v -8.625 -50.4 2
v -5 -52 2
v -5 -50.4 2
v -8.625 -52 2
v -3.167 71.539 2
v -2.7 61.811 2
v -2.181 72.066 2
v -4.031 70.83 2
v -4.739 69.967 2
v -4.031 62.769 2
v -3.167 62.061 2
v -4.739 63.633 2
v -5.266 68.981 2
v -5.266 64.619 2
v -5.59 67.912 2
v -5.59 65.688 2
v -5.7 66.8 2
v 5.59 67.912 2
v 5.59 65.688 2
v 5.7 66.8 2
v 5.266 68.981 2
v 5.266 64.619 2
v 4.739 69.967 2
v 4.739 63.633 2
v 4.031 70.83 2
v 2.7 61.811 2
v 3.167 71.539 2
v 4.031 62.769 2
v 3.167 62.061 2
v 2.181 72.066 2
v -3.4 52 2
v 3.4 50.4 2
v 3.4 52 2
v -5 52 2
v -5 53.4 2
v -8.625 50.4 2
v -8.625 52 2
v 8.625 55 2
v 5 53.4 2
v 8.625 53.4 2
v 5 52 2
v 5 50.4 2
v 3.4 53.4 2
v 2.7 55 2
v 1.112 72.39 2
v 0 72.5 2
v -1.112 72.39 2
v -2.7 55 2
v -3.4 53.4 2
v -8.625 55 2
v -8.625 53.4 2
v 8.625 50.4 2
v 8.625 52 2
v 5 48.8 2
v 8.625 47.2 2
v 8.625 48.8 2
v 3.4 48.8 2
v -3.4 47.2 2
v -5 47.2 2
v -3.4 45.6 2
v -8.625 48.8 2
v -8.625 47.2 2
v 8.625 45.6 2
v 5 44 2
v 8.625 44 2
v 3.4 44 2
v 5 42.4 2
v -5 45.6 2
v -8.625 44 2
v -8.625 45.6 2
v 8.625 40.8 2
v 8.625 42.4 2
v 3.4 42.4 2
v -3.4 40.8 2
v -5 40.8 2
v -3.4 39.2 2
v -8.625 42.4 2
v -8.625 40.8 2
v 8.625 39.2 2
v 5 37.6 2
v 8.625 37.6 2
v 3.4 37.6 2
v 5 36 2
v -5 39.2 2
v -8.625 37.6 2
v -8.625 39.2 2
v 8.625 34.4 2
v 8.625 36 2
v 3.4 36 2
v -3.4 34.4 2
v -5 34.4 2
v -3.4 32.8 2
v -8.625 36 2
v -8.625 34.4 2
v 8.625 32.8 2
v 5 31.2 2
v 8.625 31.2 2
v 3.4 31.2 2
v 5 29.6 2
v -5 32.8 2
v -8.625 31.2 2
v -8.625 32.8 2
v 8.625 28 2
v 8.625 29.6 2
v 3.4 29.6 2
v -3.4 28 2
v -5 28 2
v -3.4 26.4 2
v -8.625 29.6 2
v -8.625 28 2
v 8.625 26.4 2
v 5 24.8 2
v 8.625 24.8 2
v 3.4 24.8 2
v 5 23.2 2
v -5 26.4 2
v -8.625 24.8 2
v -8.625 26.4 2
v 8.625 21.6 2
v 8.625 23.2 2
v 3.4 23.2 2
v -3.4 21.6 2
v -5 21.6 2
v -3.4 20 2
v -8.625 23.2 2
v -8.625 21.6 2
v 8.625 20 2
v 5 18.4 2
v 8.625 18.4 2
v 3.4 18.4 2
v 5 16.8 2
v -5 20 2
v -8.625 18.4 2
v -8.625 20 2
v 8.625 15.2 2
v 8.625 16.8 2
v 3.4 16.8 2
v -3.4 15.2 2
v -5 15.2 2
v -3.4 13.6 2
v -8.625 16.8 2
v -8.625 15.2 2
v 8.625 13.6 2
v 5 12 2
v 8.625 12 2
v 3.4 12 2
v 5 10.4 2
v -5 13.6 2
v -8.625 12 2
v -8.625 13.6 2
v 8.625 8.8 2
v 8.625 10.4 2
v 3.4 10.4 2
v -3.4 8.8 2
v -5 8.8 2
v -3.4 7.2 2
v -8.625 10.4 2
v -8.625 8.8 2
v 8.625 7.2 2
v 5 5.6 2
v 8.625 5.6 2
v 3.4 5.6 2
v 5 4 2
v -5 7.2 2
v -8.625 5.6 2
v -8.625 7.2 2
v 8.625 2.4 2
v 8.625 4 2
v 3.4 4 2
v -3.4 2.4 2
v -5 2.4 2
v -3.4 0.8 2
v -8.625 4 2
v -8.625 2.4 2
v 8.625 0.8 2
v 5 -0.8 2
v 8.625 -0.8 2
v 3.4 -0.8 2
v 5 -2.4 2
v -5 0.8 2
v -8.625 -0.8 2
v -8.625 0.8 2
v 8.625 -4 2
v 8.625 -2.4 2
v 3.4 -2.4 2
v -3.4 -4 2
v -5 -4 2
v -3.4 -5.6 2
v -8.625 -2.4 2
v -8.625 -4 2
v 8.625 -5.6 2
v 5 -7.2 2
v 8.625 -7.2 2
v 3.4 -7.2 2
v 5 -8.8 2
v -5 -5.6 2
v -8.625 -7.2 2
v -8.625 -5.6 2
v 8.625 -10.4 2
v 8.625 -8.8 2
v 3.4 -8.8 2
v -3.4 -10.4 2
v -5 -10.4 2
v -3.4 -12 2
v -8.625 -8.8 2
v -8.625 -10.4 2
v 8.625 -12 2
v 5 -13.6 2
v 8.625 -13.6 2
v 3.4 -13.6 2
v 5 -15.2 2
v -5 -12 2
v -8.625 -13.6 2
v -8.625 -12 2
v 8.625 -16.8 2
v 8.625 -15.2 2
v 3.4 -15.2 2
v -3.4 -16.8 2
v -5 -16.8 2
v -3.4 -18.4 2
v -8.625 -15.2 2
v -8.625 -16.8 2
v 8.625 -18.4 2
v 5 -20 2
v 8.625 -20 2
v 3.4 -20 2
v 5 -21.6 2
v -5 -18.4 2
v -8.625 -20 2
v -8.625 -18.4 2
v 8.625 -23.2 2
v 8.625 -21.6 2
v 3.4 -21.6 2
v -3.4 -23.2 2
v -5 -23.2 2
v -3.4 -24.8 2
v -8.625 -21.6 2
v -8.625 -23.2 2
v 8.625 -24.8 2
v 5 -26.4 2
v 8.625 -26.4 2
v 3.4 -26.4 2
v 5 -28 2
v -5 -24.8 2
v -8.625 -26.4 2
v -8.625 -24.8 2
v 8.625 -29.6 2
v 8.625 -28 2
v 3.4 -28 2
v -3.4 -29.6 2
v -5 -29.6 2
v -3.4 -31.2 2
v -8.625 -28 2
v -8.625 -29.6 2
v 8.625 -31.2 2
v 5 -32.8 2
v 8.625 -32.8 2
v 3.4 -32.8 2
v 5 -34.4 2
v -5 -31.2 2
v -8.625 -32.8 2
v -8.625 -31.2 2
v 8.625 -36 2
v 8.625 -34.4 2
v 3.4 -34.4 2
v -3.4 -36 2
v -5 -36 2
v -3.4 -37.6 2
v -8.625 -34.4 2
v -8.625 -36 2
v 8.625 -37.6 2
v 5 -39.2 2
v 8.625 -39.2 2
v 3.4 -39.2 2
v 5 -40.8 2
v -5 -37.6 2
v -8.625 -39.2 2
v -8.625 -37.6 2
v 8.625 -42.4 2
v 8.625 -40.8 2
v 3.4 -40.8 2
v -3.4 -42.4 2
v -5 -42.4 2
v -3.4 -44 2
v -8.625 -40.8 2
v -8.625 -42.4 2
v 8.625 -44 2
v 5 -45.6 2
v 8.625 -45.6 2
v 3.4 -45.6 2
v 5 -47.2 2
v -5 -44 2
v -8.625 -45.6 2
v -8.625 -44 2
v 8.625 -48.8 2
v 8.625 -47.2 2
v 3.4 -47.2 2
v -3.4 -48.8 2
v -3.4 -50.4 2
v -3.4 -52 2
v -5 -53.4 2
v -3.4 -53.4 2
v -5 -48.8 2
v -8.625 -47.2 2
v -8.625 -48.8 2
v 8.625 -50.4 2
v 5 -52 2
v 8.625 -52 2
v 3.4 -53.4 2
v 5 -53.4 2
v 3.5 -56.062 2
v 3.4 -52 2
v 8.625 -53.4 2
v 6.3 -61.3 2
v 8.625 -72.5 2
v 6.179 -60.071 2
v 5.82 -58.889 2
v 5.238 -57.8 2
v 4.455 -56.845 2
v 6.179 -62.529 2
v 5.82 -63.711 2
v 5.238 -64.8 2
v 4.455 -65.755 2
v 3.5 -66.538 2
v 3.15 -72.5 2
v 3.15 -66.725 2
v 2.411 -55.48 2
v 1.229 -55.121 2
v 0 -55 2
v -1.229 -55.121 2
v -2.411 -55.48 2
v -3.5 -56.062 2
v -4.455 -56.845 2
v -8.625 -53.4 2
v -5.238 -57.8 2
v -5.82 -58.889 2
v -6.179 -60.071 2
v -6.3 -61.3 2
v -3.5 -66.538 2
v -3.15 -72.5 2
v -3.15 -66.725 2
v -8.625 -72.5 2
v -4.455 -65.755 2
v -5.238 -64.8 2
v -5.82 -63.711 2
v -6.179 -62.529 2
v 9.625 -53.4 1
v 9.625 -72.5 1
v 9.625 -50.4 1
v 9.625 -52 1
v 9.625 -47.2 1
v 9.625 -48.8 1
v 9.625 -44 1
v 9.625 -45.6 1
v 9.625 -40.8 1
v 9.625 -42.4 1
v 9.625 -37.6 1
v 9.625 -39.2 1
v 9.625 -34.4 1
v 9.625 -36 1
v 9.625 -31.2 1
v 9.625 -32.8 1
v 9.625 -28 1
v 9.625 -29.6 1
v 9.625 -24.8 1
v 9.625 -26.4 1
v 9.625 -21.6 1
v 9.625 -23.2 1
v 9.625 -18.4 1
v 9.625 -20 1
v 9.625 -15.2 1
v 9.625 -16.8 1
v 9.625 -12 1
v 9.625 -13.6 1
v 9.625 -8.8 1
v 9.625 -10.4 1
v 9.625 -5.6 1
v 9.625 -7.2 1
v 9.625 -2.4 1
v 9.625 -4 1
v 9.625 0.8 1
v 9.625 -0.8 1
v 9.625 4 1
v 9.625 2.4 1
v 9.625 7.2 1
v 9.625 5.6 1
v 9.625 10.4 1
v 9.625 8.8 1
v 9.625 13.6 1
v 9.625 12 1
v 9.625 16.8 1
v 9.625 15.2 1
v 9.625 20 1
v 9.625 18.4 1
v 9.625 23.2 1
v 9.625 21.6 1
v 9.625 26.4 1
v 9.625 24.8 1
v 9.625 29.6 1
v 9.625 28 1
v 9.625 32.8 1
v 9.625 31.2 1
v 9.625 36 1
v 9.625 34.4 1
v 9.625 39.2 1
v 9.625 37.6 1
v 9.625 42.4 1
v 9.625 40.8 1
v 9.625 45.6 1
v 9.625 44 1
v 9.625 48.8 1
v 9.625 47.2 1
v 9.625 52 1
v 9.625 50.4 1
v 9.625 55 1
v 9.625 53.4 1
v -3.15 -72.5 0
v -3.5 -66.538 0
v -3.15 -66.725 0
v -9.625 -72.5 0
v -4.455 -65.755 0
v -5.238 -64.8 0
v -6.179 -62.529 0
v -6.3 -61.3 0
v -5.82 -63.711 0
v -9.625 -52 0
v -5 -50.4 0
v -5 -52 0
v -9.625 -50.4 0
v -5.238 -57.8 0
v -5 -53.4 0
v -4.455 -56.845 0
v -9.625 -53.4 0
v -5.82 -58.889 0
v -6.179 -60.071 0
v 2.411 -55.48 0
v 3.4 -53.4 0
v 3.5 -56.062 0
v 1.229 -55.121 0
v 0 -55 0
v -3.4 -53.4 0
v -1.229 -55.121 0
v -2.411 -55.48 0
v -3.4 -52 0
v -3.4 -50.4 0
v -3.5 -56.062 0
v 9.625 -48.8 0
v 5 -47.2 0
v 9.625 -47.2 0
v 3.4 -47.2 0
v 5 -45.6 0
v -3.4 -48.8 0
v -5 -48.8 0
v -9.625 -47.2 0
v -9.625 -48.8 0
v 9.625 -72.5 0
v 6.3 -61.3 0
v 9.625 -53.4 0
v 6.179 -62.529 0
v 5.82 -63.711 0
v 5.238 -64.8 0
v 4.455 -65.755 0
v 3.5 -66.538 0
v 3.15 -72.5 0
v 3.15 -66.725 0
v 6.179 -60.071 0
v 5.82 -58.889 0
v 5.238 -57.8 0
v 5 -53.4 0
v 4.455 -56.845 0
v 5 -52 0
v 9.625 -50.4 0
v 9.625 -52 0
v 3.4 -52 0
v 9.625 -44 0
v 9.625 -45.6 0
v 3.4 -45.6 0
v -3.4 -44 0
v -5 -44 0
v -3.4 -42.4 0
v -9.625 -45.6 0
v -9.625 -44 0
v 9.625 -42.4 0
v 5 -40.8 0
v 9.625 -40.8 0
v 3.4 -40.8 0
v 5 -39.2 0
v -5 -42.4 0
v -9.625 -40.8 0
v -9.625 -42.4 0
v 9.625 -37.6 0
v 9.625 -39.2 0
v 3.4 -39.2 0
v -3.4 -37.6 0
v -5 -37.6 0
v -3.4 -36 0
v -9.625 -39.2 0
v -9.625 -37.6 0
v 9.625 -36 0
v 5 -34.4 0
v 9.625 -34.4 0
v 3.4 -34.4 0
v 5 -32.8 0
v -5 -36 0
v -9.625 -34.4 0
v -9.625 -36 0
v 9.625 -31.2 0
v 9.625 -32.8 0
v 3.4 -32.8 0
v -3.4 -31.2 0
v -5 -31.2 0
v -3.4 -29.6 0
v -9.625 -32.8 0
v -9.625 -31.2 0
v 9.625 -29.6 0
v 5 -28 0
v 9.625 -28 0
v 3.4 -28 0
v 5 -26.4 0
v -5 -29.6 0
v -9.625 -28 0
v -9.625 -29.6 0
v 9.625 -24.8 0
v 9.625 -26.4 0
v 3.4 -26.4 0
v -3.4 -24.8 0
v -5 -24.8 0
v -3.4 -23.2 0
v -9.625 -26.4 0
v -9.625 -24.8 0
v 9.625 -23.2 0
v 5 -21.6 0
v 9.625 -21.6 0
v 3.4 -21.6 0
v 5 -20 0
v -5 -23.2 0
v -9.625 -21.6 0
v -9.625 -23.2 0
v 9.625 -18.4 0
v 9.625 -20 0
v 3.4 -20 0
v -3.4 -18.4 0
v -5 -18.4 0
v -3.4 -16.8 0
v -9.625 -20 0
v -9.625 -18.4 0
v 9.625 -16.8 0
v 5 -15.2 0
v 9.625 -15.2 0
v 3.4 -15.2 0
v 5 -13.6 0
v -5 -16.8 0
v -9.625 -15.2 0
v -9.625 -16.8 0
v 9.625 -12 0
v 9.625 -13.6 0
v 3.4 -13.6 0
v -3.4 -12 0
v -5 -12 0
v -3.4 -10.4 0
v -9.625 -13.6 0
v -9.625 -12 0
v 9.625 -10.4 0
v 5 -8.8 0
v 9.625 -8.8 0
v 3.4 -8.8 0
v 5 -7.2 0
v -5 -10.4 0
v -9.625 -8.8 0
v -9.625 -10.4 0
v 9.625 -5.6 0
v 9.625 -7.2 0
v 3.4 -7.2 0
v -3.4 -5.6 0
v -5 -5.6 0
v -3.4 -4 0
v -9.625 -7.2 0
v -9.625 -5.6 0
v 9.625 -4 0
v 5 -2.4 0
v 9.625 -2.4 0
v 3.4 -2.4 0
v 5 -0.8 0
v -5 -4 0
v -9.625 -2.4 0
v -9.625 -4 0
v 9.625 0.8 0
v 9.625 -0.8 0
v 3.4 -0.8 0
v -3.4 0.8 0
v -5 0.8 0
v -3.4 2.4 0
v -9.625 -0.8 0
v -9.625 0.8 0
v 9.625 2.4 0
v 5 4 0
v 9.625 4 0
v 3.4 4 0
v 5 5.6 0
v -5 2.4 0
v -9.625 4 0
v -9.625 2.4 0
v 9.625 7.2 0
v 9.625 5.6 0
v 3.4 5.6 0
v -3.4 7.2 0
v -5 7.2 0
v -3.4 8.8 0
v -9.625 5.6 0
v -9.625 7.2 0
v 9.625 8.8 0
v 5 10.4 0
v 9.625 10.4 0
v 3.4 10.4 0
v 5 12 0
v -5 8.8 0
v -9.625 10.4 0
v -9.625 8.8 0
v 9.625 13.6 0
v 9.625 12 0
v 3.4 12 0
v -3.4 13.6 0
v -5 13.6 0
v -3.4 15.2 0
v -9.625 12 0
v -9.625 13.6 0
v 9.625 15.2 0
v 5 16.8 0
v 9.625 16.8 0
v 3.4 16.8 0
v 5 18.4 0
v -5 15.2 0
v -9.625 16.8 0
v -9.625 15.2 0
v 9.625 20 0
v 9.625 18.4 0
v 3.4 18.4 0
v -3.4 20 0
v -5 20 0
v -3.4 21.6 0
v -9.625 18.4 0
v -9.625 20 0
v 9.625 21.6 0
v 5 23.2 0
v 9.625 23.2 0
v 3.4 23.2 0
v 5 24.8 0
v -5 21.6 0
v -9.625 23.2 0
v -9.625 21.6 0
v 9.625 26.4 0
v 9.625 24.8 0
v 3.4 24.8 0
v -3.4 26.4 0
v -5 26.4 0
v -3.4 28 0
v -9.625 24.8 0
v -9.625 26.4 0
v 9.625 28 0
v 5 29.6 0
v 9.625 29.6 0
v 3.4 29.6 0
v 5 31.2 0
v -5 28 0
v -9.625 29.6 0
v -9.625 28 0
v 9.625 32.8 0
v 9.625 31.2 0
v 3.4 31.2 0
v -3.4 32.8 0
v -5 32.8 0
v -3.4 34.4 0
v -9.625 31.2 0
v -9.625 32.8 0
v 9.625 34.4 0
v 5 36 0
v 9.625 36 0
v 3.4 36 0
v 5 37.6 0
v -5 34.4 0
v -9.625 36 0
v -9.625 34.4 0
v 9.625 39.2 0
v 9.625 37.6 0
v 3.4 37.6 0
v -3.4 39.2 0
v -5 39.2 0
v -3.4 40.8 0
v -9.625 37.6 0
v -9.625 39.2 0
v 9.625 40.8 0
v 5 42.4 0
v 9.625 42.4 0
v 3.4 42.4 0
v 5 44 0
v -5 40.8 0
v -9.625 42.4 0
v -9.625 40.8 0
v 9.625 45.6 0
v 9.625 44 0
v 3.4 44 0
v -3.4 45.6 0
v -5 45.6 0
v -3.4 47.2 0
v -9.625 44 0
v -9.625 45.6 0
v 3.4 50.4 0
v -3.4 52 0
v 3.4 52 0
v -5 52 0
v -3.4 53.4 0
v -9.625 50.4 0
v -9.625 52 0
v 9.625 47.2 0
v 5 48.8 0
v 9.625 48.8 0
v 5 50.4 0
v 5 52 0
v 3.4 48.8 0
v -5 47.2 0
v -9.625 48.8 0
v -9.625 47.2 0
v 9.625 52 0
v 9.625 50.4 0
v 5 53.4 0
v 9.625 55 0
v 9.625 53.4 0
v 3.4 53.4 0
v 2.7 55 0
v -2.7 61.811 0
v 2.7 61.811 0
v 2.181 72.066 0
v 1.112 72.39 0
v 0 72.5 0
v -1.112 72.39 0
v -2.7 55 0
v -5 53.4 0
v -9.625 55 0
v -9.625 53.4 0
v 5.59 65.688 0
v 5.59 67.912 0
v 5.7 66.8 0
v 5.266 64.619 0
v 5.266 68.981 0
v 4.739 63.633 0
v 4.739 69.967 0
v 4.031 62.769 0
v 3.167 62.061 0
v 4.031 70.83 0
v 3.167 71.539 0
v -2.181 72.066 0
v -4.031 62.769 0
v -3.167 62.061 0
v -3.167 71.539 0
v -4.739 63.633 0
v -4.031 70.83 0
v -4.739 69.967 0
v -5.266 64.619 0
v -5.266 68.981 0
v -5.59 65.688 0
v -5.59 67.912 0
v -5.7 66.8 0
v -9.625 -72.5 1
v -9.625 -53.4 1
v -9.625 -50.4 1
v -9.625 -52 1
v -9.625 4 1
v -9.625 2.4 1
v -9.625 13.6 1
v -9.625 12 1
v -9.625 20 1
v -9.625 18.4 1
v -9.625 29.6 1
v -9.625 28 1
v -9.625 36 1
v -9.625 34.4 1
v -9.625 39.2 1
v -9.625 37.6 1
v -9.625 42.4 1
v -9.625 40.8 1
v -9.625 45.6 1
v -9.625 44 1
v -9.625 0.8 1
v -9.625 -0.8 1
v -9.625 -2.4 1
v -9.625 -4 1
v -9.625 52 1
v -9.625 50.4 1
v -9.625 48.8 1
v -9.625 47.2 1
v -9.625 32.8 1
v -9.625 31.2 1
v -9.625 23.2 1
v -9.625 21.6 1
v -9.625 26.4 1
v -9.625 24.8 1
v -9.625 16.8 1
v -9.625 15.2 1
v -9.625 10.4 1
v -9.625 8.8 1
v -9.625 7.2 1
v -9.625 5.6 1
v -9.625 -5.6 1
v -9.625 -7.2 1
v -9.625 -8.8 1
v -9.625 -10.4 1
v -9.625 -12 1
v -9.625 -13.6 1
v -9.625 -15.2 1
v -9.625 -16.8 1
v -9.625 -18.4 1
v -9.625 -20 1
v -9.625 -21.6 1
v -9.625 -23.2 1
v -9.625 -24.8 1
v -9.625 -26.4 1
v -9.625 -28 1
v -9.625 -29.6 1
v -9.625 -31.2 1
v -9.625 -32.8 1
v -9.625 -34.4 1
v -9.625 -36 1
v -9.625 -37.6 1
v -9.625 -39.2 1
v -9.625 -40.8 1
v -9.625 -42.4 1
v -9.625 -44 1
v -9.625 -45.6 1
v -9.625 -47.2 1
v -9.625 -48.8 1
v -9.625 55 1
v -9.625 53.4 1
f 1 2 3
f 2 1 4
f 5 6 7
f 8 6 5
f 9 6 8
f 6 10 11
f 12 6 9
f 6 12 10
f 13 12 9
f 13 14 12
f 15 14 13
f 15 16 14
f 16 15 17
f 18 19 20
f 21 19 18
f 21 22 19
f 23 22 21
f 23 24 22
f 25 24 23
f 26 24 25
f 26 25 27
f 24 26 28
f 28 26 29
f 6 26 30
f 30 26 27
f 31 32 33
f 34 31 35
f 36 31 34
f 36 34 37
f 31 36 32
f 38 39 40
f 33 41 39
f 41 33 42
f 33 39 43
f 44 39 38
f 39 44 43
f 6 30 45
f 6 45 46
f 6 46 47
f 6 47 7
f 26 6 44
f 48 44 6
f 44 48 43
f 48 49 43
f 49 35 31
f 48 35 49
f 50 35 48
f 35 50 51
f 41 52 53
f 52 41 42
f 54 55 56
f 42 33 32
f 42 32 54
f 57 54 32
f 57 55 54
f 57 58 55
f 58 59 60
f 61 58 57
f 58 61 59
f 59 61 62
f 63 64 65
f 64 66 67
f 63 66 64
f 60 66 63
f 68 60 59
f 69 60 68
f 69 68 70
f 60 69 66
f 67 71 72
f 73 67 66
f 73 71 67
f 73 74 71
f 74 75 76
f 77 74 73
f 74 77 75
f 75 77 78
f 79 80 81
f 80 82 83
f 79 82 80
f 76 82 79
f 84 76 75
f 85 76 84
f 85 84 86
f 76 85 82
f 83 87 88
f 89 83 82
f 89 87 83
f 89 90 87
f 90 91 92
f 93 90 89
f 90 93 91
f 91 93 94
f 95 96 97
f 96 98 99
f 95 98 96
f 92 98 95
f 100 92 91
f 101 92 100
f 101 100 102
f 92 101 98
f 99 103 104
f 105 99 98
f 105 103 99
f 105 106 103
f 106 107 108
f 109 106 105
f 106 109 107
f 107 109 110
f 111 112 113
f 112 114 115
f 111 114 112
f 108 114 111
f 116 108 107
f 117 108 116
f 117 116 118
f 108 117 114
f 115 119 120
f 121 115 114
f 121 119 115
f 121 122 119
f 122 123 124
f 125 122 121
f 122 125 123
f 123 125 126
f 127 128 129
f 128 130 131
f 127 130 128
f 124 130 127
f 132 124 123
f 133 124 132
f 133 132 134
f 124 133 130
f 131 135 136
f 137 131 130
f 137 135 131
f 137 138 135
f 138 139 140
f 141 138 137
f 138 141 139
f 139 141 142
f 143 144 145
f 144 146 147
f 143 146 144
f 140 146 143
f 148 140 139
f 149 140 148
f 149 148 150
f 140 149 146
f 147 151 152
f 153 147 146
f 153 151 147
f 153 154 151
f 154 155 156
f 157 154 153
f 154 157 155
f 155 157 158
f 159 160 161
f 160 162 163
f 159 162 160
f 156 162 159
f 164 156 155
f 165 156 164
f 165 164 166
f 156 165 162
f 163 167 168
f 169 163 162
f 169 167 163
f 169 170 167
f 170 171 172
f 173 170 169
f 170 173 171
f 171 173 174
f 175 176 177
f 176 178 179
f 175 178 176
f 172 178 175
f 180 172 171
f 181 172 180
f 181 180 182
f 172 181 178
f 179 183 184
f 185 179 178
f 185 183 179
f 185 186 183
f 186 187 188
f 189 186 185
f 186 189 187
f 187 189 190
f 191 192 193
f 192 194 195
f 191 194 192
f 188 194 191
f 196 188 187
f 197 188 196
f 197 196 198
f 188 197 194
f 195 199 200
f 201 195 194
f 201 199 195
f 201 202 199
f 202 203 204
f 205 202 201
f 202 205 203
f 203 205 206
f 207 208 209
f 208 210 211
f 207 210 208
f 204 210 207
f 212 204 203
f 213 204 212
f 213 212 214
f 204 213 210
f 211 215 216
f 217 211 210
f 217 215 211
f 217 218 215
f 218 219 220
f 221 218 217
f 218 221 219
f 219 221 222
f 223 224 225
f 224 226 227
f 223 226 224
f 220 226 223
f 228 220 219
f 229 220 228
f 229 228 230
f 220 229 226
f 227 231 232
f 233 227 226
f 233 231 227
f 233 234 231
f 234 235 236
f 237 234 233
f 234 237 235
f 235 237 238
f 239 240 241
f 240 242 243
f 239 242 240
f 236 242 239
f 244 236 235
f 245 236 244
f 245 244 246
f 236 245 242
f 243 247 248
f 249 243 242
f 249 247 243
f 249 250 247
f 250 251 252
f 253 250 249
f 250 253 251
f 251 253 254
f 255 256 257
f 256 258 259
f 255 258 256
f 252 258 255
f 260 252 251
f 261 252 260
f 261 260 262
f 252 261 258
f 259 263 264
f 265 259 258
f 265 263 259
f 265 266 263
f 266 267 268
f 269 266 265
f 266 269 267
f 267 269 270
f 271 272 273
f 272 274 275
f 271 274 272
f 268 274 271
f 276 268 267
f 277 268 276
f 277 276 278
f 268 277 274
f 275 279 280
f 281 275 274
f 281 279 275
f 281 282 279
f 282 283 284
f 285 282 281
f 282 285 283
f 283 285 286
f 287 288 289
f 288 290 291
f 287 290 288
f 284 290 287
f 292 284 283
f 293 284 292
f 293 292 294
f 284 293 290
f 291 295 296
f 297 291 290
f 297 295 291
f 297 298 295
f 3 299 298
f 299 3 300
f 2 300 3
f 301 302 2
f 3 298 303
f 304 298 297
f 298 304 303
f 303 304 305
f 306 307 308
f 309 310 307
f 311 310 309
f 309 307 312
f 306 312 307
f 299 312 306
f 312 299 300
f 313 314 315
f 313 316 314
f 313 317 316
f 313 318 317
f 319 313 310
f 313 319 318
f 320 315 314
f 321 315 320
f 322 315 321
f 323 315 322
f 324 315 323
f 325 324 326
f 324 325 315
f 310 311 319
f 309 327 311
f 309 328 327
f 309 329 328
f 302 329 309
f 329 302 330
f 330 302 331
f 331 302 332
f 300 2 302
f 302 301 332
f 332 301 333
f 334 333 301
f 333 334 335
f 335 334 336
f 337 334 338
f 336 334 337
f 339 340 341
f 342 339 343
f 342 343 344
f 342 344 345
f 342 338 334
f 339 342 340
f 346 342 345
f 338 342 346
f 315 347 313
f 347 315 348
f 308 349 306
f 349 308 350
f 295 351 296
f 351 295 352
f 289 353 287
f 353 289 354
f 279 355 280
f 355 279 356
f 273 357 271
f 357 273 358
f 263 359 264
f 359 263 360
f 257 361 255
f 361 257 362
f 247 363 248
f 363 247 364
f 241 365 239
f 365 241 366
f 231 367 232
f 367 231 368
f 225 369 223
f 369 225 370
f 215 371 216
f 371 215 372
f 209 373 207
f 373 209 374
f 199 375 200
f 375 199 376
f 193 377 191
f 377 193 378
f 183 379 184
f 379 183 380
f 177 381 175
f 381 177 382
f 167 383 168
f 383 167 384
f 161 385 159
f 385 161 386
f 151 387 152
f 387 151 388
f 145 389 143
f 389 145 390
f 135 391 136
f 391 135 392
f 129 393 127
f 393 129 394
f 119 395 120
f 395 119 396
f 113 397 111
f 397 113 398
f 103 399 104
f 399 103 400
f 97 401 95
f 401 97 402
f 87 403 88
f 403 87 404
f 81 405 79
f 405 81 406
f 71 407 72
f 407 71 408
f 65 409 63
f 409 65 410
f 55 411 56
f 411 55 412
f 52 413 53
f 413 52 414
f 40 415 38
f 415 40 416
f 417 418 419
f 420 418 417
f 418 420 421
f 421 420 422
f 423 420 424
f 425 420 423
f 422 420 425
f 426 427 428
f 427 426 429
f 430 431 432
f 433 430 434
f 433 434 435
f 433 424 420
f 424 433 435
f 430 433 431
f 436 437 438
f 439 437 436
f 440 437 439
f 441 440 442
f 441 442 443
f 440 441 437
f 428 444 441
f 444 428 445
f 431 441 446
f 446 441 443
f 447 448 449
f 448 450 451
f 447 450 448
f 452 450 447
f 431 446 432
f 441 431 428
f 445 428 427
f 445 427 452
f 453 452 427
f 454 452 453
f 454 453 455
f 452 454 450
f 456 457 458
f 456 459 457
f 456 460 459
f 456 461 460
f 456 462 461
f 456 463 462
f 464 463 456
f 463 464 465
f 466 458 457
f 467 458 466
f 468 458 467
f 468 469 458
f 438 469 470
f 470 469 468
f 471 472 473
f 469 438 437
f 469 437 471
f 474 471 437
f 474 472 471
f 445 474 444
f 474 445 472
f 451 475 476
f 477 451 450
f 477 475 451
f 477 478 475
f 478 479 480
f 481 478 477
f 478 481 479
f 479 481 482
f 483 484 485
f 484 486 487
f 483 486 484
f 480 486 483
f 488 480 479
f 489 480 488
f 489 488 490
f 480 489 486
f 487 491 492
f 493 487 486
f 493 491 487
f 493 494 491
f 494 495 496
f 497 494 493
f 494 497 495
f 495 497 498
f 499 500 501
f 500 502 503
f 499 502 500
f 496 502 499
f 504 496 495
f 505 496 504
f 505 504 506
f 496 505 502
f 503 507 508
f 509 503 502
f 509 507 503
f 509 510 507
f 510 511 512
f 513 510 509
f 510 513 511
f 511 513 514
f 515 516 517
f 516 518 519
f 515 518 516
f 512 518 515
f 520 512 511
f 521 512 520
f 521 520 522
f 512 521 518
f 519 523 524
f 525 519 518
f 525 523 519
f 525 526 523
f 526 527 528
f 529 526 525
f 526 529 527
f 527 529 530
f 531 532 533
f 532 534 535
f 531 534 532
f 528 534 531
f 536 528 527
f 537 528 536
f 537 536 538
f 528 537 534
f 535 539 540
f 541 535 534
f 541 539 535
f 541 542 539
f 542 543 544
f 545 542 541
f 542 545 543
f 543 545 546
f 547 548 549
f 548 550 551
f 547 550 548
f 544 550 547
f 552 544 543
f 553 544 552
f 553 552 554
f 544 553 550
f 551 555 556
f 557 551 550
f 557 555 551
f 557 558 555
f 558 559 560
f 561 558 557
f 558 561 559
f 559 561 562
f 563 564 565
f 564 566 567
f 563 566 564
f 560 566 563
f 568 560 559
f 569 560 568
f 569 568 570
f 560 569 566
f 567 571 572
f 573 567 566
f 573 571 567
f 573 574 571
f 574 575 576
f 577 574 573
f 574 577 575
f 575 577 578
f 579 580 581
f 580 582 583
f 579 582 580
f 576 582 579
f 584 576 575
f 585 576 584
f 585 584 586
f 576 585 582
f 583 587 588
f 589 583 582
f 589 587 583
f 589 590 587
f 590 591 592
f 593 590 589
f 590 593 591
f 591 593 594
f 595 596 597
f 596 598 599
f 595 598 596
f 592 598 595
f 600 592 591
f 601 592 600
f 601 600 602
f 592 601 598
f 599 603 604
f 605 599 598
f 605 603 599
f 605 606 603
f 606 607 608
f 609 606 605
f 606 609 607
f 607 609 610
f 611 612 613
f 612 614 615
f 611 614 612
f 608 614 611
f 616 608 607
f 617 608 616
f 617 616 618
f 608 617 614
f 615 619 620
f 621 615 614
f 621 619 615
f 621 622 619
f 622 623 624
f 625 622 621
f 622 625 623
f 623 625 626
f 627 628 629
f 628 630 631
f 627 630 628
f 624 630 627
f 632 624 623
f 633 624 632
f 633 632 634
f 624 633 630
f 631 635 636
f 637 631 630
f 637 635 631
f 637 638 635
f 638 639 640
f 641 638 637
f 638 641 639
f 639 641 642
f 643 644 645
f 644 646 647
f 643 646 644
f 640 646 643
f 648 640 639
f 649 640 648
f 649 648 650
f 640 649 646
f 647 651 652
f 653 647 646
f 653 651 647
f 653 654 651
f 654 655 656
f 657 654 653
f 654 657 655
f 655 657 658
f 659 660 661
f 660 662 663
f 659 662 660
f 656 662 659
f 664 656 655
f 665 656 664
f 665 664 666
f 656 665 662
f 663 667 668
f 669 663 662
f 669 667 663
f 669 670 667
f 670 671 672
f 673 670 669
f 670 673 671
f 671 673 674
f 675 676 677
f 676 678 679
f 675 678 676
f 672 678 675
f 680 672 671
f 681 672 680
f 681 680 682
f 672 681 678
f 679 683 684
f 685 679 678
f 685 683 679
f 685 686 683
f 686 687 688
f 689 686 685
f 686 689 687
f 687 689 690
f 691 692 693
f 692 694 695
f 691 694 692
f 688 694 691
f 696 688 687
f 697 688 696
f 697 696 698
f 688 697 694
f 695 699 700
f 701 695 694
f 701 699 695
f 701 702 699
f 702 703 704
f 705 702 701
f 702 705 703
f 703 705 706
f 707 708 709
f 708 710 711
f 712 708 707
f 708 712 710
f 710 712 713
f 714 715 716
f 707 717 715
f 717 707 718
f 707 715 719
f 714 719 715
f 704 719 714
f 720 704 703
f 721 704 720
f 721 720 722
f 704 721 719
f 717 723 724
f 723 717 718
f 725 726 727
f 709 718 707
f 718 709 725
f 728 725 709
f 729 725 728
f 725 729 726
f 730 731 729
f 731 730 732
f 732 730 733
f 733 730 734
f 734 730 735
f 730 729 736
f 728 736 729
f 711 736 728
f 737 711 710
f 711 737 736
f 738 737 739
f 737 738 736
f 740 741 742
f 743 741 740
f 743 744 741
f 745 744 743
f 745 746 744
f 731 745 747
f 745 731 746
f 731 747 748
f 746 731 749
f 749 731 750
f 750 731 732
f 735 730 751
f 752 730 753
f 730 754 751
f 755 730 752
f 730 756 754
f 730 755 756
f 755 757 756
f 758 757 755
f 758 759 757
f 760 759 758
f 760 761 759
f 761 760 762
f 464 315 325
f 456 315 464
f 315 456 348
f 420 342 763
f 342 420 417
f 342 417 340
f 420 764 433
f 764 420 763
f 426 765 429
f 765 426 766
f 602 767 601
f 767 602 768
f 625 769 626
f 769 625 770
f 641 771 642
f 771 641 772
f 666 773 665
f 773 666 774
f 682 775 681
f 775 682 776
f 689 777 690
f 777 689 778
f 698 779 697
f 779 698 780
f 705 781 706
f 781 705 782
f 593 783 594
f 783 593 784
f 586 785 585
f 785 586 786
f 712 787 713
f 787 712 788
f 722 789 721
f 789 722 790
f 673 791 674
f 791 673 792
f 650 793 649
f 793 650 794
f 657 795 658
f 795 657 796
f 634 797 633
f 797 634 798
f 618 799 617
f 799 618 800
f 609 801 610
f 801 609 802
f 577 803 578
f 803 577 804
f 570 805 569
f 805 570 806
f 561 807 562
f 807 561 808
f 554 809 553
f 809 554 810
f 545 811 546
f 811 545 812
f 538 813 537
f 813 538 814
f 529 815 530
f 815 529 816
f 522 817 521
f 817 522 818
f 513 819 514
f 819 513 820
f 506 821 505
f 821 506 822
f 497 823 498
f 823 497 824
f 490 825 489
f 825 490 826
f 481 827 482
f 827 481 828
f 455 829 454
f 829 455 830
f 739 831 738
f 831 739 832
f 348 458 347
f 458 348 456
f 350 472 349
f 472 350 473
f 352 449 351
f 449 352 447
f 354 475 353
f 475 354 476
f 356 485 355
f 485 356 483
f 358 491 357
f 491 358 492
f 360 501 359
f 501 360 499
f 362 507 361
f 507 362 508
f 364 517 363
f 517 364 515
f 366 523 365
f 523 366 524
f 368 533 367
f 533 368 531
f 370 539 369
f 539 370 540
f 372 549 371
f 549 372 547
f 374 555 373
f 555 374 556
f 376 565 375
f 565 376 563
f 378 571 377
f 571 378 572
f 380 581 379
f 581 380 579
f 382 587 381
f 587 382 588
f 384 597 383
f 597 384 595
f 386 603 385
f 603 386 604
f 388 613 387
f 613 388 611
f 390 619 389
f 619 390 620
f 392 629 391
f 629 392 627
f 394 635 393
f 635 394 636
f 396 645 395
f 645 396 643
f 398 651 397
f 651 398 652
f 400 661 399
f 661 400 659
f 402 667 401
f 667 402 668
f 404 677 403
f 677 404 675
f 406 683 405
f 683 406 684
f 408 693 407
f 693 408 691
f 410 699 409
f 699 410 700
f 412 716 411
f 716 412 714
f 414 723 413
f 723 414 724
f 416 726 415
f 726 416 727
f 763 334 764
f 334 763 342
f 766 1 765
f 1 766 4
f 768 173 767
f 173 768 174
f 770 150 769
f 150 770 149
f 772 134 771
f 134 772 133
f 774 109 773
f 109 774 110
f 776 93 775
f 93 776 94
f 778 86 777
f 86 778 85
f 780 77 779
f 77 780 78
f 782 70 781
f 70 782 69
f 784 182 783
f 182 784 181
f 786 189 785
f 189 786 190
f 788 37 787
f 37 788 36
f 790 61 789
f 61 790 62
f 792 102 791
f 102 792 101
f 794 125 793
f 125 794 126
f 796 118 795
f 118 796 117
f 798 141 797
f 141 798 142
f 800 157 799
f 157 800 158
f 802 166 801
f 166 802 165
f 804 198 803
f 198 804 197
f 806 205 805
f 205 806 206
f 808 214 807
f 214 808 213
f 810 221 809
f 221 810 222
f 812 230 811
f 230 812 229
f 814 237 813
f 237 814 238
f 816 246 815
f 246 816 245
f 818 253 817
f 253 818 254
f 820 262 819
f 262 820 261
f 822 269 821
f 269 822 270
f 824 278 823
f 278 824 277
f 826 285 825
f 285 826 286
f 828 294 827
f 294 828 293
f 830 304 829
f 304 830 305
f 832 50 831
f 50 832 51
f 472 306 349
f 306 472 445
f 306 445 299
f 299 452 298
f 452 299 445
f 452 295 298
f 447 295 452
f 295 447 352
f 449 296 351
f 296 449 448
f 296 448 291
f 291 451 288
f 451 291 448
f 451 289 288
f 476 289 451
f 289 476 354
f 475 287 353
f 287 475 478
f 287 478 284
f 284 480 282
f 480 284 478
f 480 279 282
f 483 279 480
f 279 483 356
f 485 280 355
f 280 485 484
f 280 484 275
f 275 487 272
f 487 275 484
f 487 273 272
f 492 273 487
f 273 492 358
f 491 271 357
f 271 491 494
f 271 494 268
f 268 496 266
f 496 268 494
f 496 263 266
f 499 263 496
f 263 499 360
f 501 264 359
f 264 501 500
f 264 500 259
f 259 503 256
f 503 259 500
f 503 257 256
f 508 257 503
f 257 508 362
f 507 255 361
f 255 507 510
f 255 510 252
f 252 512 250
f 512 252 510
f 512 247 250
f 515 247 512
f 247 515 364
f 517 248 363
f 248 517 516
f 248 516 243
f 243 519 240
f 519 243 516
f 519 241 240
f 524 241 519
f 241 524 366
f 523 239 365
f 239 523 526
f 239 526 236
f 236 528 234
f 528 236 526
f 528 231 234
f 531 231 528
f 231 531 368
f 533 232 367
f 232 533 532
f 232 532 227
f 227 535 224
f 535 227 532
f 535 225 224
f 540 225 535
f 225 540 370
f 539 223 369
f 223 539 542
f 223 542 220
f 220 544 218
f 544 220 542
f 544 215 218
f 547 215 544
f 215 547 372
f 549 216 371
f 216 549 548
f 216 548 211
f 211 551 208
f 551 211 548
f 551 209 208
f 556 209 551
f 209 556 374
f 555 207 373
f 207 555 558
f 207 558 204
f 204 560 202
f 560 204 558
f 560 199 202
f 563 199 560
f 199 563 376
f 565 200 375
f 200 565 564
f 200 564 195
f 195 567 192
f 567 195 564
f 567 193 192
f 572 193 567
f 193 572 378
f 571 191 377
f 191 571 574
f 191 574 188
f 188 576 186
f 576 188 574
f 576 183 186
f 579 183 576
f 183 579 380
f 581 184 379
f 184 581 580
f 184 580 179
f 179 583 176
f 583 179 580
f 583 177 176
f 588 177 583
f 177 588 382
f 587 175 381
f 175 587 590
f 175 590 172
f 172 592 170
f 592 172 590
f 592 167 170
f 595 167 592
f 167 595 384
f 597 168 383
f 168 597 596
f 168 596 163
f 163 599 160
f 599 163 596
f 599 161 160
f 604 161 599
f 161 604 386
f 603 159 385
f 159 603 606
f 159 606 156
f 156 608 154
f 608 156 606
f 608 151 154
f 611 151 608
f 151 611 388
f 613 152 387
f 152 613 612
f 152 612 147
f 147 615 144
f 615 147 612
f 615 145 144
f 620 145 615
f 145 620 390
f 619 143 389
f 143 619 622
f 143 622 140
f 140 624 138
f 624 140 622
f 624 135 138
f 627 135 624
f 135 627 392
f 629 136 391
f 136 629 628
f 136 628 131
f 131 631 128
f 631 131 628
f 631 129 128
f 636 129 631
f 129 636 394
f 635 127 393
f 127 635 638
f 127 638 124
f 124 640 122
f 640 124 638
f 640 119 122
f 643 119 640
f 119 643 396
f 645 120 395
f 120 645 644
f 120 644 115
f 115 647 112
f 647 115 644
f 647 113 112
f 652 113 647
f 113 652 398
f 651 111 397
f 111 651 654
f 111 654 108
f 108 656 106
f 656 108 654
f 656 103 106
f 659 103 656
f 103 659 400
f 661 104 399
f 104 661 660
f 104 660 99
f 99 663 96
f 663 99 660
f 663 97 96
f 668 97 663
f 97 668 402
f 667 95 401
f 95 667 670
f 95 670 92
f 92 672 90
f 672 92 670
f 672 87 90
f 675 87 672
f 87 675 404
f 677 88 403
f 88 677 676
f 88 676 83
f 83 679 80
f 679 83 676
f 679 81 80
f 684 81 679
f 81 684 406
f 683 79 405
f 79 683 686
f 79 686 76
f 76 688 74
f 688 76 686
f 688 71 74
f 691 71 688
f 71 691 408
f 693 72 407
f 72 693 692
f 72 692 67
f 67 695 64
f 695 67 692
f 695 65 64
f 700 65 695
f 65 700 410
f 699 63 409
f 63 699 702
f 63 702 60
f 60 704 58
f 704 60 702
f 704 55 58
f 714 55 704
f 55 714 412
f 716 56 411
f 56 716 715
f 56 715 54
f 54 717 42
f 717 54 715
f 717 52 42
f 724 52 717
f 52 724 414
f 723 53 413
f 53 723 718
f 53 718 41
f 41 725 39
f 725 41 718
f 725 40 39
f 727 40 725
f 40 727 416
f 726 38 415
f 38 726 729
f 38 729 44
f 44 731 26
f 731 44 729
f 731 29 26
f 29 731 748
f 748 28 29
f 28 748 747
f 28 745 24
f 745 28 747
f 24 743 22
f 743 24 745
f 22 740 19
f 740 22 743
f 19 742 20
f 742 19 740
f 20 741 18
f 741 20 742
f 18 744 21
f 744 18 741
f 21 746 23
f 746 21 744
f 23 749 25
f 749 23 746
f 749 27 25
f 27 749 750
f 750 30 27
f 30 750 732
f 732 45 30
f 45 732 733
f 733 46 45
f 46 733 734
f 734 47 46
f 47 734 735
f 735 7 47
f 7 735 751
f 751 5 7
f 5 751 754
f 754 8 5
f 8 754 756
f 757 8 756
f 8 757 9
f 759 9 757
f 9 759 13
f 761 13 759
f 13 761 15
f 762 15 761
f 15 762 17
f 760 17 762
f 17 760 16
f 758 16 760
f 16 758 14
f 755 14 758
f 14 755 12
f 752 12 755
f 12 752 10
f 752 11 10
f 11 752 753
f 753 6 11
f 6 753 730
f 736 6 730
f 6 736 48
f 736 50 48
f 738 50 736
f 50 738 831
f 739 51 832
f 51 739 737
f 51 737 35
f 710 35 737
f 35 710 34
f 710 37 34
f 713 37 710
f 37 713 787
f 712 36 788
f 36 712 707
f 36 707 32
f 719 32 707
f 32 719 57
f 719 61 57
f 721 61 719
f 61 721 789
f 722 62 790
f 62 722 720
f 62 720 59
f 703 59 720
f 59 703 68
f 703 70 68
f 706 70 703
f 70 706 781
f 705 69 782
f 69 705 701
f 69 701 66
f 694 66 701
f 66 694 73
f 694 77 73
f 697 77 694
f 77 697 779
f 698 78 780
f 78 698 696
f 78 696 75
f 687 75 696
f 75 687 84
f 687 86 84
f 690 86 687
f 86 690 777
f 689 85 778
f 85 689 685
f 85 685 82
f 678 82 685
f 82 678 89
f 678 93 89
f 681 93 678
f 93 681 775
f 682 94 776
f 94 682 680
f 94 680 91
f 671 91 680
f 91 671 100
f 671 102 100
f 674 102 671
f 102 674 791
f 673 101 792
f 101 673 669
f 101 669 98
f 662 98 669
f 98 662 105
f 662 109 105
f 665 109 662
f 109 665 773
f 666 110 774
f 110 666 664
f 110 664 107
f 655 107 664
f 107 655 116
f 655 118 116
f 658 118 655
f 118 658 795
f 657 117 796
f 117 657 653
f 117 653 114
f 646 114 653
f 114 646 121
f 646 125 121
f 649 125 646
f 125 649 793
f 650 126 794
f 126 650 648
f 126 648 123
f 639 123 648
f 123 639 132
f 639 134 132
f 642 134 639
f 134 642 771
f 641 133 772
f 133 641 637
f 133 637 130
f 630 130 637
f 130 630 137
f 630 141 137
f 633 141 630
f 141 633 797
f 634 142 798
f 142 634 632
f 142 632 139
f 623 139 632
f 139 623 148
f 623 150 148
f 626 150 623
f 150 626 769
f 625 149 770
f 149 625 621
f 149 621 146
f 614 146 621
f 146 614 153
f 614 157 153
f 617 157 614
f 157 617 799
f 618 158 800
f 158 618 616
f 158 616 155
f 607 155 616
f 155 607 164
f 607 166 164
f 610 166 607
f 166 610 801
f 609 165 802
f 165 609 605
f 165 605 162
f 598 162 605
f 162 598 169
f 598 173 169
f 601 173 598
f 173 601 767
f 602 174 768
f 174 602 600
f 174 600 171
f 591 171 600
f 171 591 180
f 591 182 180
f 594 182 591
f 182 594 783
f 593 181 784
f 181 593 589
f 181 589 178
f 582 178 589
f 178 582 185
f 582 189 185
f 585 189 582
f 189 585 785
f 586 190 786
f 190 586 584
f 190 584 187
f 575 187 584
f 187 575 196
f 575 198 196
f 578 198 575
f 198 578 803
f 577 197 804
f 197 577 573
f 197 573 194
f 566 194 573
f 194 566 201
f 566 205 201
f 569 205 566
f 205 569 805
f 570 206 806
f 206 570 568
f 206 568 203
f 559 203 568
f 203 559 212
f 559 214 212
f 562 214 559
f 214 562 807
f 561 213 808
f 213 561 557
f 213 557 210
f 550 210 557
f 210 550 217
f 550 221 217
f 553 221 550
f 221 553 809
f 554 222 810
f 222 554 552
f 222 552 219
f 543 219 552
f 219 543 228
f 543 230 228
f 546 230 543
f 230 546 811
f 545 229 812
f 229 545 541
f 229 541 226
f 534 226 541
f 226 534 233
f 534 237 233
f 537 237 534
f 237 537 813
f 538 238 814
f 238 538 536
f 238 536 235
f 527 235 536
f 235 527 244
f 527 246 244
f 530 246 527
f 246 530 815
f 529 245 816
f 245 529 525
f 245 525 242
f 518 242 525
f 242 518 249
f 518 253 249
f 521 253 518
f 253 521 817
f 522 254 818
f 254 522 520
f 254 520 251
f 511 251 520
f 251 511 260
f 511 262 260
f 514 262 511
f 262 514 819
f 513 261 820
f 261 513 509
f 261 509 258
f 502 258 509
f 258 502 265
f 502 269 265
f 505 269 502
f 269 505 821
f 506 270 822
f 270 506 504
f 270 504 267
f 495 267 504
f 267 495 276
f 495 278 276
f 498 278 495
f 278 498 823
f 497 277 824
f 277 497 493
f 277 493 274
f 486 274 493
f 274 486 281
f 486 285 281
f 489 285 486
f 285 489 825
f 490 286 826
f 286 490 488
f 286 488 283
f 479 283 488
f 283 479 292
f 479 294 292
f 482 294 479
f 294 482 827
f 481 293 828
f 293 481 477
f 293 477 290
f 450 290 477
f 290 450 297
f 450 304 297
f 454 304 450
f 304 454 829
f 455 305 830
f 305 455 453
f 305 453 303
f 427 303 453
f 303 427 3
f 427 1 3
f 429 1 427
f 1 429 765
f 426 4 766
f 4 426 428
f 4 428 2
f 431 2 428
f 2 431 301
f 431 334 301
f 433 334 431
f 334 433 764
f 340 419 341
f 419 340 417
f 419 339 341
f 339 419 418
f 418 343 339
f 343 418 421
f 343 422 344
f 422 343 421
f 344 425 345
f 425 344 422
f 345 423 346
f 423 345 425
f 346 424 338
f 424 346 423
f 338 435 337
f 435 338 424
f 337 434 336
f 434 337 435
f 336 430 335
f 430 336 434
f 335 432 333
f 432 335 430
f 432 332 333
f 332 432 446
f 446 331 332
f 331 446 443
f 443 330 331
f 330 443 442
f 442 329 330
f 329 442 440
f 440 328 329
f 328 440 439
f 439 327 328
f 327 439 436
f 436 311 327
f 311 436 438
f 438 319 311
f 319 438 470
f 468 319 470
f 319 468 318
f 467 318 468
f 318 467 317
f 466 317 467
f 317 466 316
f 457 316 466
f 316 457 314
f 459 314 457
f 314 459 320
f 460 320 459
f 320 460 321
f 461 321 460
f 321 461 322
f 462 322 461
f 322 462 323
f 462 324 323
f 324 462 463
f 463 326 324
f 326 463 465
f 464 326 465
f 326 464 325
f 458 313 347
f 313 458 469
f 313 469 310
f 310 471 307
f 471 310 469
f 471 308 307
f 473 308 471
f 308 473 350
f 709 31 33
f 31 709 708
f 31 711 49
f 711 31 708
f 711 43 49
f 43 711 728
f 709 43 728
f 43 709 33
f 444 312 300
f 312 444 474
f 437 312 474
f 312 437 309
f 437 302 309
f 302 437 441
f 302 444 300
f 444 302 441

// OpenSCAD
// Customizable toy train tracks
// by atartanian (www.thingiverse.com/atartanian)
// license CC-BY-SA

// preview[view:west, tilt:top]

/*[Track Settings]*/
//length of track piece, in mm
length = 145; //[30:10:400]

//only one preset... for now
//track_type = 0; //[1:brio,0:custom]

//in order to print perfectly, set your printers extrusion width
extrusion_width = .4; //[.1:.05:1]

//track line thickness, in multiples of extrusion width
line_thickness = 4; //[2:2:10]

//spacing between male and female connectors, in mm
connector_tolerance = .3; //[.1:.05:1]

/*[Custom Dimensions]*/
use_custom_settings = 1; //[0:No,1:Yes]
custom_width_base = 19.25;
custom_width_middle = 10;
custom_height_base = 2;
custom_height_middle = 2;
custom_connector_length = 17.5;

/*[Hidden]*/
track_type = use_custom_settings ? 0 : 1;


/***************/
/*     CODE    */
/***************/
translate([-track_type_params()[track_type][1] / 2, -length / 2])
intersection(convexity = 20) {
    rotate([-90,0,0])
        linear_extrude(height = length, convexity = 20)
            scale([1,-1])
                track_profile_2D(
                    track_type_params()[track_type][1],
                    track_type_params()[track_type][2],
                    track_type_params()[track_type][3],
                    track_type_params()[track_type][4],
                    1
                );

    linear_extrude(height = track_type_params()[track_type][4], convexity = 20)
        union() {
            translate([0, track_type_params()[track_type][5] + line_thickness * extrusion_width]) {
                translate([track_type_params()[track_type][1] / 2, length - track_type_params()[track_type][5] * 2 - line_thickness * extrusion_width * 2])
                        brio_male_2D();
                
                flex_track_pattern_2D(
                    length - track_type_params()[track_type][5] * 2 - line_thickness * extrusion_width * 2,
                    track_type_params()[track_type][1],
                    track_type_params()[track_type][2],
                    line_thickness * extrusion_width,
                    line_thickness * extrusion_width,
                    line_thickness * extrusion_width
                );
            }
            translate([track_type_params()[track_type][1] / 2, track_type_params()[track_type][5] + line_thickness * extrusion_width])
                scale([1, -1])
                    brio_female_2D();
        }
}

/***************/
/*  FUNCTIONS  */
/***************/

function track_type_params() = 
[   
    [   //[0] template
        "custom",   //[0] name
        custom_width_base,         //[1] width base
        custom_width_middle,         //[2] width middle
        custom_height_base,         //[3] height base
        custom_height_middle,         //[4] height middle
        custom_connector_length
    ], 
    [   //[1] brio
        "brio",     //[0] name
        40,         //[1] width base
        20,         //[2] width middle
        8.9,        //[3] height base
        12,         //[4] height middle
        17.5        //[5] connector length
    ], 
];

/***************/
/*   MODULES   */
/***************/

module track_profile_2D(
    width_base = 40,
    width_middle = 20,
    height_base = 10,
    height_middle = 15,
    bevel_radius = 1
){
    difference() {
        translate([bevel_radius, 0]) {
            union() {
                offset(d = bevel_radius) {
                    square(
                        [
                            width_base - bevel_radius * 2,
                            height_base - bevel_radius
                        ]
                    );
                }
                offset(d = bevel_radius) {
                    translate([(width_base - width_middle) / 2, bevel_radius])
                        square(
                            [
                                width_middle - bevel_radius * 2,
                                height_middle - bevel_radius * 2
                            ]
                        );
                }            
            }
        }
        translate([-width_base/2, -width_base*2])
            square(width_base * 2);
    }   
}

module flex_track_pattern_2D(
    length = 100,
    width_base = 40,
    width_middle = 20,
    line_thickness = 1.6,
    connector_thickness = 1.6,
    gap_thickness = 1.6
){
    epsilon = .1;

    slice_thickness = line_thickness + gap_thickness;
    slices = floor(length / slice_thickness);
    leftover = length - (slice_thickness * slices) + gap_thickness;

    module bars(even = true, odd = true, cutter = false) {
        for (i = [0:slices-1]) {
            if (even == true && !(i % 2)) {
                if(cutter == true) {
                    translate([-epsilon/2,slice_thickness * i]) {
                        square([width_base + epsilon,line_thickness]);
                    }
                } else {
                    translate([0,slice_thickness * i]) {
                        square([width_base,line_thickness]);
                    }
                }  
            }
            if (odd == true && (i % 2)) {
                if(cutter == true) {
                    translate([-epsilon/2,slice_thickness * i]) {
                        square([width_base + epsilon,line_thickness]);
                    }
                } else {
                    translate([0,slice_thickness * i]) {
                        square([width_base,line_thickness]);
                    }
                }  
            }
        }
    }

    module bars_holes(even = true, odd = true, cutter = true) {
        for (i = [0:slices-2]) {
            if (even == true && !(i % 2)) {
                if(cutter == true) {
                    translate([-epsilon/2,slice_thickness * i + line_thickness]) {
                        square([width_base + epsilon, gap_thickness]);
                    }
                } else {
                    translate([0,slice_thickness * i + line_thickness]) {
                        square([width_base, gap_thickness]);
                    }
                }  
            }
            if (odd == true && (i % 2)) {
                if(cutter == true) {
                    translate([-epsilon/2,slice_thickness * i + line_thickness]) {
                        square([width_base + epsilon, gap_thickness]);
                    }
                } else {
                    translate([0,slice_thickness * i + line_thickness]) {
                        square([width_base, gap_thickness]);
                    }
                }  
            }
        }
    }

    translate([0, leftover / 2])
        bars();

    difference() {
        translate([(width_base - width_middle) / 2, 0])
            square([connector_thickness, length]);
        
        translate([0, leftover / 2])
            bars_holes(false, true);
    }

    difference() {
        translate([(width_base - width_middle) / 2 + width_middle - connector_thickness, 0])
            square([connector_thickness, length]);
        
        translate([0, leftover / 2])
            bars_holes(true, false);
    } 
}

module brio_male_2D() {
    stem_width = 6;
    stem_length = 11.5;
    post_radius = 6;

    translate([0, line_thickness * extrusion_width/2])
        square([track_type_params()[1][1], line_thickness * extrusion_width], center = true);
    
    translate([0, (stem_length + connector_tolerance) / 2 + line_thickness * extrusion_width])
        square([stem_width - connector_tolerance * 2, stem_length + connector_tolerance], center = true);
    
    translate([0, stem_length + connector_tolerance + line_thickness * extrusion_width])
        circle(r = post_radius - connector_tolerance, $fn = 32);
}

module brio_female_2D() {
    stem_width = 6.3;
    stem_length = 11.5;
    post_radius = 6.3;
    total_length = line_thickness * extrusion_width + stem_length + post_radius;

    difference() {
        translate([0, (total_length)/2])
            square([track_type_params()[1][1], total_length], center = true);
        
        translate([0, total_length - stem_length / 2])
            square([stem_width, stem_length], center = true);
        
        translate([0, total_length - stem_length])
            circle(r = post_radius, $fn = 32);        
    }

}
